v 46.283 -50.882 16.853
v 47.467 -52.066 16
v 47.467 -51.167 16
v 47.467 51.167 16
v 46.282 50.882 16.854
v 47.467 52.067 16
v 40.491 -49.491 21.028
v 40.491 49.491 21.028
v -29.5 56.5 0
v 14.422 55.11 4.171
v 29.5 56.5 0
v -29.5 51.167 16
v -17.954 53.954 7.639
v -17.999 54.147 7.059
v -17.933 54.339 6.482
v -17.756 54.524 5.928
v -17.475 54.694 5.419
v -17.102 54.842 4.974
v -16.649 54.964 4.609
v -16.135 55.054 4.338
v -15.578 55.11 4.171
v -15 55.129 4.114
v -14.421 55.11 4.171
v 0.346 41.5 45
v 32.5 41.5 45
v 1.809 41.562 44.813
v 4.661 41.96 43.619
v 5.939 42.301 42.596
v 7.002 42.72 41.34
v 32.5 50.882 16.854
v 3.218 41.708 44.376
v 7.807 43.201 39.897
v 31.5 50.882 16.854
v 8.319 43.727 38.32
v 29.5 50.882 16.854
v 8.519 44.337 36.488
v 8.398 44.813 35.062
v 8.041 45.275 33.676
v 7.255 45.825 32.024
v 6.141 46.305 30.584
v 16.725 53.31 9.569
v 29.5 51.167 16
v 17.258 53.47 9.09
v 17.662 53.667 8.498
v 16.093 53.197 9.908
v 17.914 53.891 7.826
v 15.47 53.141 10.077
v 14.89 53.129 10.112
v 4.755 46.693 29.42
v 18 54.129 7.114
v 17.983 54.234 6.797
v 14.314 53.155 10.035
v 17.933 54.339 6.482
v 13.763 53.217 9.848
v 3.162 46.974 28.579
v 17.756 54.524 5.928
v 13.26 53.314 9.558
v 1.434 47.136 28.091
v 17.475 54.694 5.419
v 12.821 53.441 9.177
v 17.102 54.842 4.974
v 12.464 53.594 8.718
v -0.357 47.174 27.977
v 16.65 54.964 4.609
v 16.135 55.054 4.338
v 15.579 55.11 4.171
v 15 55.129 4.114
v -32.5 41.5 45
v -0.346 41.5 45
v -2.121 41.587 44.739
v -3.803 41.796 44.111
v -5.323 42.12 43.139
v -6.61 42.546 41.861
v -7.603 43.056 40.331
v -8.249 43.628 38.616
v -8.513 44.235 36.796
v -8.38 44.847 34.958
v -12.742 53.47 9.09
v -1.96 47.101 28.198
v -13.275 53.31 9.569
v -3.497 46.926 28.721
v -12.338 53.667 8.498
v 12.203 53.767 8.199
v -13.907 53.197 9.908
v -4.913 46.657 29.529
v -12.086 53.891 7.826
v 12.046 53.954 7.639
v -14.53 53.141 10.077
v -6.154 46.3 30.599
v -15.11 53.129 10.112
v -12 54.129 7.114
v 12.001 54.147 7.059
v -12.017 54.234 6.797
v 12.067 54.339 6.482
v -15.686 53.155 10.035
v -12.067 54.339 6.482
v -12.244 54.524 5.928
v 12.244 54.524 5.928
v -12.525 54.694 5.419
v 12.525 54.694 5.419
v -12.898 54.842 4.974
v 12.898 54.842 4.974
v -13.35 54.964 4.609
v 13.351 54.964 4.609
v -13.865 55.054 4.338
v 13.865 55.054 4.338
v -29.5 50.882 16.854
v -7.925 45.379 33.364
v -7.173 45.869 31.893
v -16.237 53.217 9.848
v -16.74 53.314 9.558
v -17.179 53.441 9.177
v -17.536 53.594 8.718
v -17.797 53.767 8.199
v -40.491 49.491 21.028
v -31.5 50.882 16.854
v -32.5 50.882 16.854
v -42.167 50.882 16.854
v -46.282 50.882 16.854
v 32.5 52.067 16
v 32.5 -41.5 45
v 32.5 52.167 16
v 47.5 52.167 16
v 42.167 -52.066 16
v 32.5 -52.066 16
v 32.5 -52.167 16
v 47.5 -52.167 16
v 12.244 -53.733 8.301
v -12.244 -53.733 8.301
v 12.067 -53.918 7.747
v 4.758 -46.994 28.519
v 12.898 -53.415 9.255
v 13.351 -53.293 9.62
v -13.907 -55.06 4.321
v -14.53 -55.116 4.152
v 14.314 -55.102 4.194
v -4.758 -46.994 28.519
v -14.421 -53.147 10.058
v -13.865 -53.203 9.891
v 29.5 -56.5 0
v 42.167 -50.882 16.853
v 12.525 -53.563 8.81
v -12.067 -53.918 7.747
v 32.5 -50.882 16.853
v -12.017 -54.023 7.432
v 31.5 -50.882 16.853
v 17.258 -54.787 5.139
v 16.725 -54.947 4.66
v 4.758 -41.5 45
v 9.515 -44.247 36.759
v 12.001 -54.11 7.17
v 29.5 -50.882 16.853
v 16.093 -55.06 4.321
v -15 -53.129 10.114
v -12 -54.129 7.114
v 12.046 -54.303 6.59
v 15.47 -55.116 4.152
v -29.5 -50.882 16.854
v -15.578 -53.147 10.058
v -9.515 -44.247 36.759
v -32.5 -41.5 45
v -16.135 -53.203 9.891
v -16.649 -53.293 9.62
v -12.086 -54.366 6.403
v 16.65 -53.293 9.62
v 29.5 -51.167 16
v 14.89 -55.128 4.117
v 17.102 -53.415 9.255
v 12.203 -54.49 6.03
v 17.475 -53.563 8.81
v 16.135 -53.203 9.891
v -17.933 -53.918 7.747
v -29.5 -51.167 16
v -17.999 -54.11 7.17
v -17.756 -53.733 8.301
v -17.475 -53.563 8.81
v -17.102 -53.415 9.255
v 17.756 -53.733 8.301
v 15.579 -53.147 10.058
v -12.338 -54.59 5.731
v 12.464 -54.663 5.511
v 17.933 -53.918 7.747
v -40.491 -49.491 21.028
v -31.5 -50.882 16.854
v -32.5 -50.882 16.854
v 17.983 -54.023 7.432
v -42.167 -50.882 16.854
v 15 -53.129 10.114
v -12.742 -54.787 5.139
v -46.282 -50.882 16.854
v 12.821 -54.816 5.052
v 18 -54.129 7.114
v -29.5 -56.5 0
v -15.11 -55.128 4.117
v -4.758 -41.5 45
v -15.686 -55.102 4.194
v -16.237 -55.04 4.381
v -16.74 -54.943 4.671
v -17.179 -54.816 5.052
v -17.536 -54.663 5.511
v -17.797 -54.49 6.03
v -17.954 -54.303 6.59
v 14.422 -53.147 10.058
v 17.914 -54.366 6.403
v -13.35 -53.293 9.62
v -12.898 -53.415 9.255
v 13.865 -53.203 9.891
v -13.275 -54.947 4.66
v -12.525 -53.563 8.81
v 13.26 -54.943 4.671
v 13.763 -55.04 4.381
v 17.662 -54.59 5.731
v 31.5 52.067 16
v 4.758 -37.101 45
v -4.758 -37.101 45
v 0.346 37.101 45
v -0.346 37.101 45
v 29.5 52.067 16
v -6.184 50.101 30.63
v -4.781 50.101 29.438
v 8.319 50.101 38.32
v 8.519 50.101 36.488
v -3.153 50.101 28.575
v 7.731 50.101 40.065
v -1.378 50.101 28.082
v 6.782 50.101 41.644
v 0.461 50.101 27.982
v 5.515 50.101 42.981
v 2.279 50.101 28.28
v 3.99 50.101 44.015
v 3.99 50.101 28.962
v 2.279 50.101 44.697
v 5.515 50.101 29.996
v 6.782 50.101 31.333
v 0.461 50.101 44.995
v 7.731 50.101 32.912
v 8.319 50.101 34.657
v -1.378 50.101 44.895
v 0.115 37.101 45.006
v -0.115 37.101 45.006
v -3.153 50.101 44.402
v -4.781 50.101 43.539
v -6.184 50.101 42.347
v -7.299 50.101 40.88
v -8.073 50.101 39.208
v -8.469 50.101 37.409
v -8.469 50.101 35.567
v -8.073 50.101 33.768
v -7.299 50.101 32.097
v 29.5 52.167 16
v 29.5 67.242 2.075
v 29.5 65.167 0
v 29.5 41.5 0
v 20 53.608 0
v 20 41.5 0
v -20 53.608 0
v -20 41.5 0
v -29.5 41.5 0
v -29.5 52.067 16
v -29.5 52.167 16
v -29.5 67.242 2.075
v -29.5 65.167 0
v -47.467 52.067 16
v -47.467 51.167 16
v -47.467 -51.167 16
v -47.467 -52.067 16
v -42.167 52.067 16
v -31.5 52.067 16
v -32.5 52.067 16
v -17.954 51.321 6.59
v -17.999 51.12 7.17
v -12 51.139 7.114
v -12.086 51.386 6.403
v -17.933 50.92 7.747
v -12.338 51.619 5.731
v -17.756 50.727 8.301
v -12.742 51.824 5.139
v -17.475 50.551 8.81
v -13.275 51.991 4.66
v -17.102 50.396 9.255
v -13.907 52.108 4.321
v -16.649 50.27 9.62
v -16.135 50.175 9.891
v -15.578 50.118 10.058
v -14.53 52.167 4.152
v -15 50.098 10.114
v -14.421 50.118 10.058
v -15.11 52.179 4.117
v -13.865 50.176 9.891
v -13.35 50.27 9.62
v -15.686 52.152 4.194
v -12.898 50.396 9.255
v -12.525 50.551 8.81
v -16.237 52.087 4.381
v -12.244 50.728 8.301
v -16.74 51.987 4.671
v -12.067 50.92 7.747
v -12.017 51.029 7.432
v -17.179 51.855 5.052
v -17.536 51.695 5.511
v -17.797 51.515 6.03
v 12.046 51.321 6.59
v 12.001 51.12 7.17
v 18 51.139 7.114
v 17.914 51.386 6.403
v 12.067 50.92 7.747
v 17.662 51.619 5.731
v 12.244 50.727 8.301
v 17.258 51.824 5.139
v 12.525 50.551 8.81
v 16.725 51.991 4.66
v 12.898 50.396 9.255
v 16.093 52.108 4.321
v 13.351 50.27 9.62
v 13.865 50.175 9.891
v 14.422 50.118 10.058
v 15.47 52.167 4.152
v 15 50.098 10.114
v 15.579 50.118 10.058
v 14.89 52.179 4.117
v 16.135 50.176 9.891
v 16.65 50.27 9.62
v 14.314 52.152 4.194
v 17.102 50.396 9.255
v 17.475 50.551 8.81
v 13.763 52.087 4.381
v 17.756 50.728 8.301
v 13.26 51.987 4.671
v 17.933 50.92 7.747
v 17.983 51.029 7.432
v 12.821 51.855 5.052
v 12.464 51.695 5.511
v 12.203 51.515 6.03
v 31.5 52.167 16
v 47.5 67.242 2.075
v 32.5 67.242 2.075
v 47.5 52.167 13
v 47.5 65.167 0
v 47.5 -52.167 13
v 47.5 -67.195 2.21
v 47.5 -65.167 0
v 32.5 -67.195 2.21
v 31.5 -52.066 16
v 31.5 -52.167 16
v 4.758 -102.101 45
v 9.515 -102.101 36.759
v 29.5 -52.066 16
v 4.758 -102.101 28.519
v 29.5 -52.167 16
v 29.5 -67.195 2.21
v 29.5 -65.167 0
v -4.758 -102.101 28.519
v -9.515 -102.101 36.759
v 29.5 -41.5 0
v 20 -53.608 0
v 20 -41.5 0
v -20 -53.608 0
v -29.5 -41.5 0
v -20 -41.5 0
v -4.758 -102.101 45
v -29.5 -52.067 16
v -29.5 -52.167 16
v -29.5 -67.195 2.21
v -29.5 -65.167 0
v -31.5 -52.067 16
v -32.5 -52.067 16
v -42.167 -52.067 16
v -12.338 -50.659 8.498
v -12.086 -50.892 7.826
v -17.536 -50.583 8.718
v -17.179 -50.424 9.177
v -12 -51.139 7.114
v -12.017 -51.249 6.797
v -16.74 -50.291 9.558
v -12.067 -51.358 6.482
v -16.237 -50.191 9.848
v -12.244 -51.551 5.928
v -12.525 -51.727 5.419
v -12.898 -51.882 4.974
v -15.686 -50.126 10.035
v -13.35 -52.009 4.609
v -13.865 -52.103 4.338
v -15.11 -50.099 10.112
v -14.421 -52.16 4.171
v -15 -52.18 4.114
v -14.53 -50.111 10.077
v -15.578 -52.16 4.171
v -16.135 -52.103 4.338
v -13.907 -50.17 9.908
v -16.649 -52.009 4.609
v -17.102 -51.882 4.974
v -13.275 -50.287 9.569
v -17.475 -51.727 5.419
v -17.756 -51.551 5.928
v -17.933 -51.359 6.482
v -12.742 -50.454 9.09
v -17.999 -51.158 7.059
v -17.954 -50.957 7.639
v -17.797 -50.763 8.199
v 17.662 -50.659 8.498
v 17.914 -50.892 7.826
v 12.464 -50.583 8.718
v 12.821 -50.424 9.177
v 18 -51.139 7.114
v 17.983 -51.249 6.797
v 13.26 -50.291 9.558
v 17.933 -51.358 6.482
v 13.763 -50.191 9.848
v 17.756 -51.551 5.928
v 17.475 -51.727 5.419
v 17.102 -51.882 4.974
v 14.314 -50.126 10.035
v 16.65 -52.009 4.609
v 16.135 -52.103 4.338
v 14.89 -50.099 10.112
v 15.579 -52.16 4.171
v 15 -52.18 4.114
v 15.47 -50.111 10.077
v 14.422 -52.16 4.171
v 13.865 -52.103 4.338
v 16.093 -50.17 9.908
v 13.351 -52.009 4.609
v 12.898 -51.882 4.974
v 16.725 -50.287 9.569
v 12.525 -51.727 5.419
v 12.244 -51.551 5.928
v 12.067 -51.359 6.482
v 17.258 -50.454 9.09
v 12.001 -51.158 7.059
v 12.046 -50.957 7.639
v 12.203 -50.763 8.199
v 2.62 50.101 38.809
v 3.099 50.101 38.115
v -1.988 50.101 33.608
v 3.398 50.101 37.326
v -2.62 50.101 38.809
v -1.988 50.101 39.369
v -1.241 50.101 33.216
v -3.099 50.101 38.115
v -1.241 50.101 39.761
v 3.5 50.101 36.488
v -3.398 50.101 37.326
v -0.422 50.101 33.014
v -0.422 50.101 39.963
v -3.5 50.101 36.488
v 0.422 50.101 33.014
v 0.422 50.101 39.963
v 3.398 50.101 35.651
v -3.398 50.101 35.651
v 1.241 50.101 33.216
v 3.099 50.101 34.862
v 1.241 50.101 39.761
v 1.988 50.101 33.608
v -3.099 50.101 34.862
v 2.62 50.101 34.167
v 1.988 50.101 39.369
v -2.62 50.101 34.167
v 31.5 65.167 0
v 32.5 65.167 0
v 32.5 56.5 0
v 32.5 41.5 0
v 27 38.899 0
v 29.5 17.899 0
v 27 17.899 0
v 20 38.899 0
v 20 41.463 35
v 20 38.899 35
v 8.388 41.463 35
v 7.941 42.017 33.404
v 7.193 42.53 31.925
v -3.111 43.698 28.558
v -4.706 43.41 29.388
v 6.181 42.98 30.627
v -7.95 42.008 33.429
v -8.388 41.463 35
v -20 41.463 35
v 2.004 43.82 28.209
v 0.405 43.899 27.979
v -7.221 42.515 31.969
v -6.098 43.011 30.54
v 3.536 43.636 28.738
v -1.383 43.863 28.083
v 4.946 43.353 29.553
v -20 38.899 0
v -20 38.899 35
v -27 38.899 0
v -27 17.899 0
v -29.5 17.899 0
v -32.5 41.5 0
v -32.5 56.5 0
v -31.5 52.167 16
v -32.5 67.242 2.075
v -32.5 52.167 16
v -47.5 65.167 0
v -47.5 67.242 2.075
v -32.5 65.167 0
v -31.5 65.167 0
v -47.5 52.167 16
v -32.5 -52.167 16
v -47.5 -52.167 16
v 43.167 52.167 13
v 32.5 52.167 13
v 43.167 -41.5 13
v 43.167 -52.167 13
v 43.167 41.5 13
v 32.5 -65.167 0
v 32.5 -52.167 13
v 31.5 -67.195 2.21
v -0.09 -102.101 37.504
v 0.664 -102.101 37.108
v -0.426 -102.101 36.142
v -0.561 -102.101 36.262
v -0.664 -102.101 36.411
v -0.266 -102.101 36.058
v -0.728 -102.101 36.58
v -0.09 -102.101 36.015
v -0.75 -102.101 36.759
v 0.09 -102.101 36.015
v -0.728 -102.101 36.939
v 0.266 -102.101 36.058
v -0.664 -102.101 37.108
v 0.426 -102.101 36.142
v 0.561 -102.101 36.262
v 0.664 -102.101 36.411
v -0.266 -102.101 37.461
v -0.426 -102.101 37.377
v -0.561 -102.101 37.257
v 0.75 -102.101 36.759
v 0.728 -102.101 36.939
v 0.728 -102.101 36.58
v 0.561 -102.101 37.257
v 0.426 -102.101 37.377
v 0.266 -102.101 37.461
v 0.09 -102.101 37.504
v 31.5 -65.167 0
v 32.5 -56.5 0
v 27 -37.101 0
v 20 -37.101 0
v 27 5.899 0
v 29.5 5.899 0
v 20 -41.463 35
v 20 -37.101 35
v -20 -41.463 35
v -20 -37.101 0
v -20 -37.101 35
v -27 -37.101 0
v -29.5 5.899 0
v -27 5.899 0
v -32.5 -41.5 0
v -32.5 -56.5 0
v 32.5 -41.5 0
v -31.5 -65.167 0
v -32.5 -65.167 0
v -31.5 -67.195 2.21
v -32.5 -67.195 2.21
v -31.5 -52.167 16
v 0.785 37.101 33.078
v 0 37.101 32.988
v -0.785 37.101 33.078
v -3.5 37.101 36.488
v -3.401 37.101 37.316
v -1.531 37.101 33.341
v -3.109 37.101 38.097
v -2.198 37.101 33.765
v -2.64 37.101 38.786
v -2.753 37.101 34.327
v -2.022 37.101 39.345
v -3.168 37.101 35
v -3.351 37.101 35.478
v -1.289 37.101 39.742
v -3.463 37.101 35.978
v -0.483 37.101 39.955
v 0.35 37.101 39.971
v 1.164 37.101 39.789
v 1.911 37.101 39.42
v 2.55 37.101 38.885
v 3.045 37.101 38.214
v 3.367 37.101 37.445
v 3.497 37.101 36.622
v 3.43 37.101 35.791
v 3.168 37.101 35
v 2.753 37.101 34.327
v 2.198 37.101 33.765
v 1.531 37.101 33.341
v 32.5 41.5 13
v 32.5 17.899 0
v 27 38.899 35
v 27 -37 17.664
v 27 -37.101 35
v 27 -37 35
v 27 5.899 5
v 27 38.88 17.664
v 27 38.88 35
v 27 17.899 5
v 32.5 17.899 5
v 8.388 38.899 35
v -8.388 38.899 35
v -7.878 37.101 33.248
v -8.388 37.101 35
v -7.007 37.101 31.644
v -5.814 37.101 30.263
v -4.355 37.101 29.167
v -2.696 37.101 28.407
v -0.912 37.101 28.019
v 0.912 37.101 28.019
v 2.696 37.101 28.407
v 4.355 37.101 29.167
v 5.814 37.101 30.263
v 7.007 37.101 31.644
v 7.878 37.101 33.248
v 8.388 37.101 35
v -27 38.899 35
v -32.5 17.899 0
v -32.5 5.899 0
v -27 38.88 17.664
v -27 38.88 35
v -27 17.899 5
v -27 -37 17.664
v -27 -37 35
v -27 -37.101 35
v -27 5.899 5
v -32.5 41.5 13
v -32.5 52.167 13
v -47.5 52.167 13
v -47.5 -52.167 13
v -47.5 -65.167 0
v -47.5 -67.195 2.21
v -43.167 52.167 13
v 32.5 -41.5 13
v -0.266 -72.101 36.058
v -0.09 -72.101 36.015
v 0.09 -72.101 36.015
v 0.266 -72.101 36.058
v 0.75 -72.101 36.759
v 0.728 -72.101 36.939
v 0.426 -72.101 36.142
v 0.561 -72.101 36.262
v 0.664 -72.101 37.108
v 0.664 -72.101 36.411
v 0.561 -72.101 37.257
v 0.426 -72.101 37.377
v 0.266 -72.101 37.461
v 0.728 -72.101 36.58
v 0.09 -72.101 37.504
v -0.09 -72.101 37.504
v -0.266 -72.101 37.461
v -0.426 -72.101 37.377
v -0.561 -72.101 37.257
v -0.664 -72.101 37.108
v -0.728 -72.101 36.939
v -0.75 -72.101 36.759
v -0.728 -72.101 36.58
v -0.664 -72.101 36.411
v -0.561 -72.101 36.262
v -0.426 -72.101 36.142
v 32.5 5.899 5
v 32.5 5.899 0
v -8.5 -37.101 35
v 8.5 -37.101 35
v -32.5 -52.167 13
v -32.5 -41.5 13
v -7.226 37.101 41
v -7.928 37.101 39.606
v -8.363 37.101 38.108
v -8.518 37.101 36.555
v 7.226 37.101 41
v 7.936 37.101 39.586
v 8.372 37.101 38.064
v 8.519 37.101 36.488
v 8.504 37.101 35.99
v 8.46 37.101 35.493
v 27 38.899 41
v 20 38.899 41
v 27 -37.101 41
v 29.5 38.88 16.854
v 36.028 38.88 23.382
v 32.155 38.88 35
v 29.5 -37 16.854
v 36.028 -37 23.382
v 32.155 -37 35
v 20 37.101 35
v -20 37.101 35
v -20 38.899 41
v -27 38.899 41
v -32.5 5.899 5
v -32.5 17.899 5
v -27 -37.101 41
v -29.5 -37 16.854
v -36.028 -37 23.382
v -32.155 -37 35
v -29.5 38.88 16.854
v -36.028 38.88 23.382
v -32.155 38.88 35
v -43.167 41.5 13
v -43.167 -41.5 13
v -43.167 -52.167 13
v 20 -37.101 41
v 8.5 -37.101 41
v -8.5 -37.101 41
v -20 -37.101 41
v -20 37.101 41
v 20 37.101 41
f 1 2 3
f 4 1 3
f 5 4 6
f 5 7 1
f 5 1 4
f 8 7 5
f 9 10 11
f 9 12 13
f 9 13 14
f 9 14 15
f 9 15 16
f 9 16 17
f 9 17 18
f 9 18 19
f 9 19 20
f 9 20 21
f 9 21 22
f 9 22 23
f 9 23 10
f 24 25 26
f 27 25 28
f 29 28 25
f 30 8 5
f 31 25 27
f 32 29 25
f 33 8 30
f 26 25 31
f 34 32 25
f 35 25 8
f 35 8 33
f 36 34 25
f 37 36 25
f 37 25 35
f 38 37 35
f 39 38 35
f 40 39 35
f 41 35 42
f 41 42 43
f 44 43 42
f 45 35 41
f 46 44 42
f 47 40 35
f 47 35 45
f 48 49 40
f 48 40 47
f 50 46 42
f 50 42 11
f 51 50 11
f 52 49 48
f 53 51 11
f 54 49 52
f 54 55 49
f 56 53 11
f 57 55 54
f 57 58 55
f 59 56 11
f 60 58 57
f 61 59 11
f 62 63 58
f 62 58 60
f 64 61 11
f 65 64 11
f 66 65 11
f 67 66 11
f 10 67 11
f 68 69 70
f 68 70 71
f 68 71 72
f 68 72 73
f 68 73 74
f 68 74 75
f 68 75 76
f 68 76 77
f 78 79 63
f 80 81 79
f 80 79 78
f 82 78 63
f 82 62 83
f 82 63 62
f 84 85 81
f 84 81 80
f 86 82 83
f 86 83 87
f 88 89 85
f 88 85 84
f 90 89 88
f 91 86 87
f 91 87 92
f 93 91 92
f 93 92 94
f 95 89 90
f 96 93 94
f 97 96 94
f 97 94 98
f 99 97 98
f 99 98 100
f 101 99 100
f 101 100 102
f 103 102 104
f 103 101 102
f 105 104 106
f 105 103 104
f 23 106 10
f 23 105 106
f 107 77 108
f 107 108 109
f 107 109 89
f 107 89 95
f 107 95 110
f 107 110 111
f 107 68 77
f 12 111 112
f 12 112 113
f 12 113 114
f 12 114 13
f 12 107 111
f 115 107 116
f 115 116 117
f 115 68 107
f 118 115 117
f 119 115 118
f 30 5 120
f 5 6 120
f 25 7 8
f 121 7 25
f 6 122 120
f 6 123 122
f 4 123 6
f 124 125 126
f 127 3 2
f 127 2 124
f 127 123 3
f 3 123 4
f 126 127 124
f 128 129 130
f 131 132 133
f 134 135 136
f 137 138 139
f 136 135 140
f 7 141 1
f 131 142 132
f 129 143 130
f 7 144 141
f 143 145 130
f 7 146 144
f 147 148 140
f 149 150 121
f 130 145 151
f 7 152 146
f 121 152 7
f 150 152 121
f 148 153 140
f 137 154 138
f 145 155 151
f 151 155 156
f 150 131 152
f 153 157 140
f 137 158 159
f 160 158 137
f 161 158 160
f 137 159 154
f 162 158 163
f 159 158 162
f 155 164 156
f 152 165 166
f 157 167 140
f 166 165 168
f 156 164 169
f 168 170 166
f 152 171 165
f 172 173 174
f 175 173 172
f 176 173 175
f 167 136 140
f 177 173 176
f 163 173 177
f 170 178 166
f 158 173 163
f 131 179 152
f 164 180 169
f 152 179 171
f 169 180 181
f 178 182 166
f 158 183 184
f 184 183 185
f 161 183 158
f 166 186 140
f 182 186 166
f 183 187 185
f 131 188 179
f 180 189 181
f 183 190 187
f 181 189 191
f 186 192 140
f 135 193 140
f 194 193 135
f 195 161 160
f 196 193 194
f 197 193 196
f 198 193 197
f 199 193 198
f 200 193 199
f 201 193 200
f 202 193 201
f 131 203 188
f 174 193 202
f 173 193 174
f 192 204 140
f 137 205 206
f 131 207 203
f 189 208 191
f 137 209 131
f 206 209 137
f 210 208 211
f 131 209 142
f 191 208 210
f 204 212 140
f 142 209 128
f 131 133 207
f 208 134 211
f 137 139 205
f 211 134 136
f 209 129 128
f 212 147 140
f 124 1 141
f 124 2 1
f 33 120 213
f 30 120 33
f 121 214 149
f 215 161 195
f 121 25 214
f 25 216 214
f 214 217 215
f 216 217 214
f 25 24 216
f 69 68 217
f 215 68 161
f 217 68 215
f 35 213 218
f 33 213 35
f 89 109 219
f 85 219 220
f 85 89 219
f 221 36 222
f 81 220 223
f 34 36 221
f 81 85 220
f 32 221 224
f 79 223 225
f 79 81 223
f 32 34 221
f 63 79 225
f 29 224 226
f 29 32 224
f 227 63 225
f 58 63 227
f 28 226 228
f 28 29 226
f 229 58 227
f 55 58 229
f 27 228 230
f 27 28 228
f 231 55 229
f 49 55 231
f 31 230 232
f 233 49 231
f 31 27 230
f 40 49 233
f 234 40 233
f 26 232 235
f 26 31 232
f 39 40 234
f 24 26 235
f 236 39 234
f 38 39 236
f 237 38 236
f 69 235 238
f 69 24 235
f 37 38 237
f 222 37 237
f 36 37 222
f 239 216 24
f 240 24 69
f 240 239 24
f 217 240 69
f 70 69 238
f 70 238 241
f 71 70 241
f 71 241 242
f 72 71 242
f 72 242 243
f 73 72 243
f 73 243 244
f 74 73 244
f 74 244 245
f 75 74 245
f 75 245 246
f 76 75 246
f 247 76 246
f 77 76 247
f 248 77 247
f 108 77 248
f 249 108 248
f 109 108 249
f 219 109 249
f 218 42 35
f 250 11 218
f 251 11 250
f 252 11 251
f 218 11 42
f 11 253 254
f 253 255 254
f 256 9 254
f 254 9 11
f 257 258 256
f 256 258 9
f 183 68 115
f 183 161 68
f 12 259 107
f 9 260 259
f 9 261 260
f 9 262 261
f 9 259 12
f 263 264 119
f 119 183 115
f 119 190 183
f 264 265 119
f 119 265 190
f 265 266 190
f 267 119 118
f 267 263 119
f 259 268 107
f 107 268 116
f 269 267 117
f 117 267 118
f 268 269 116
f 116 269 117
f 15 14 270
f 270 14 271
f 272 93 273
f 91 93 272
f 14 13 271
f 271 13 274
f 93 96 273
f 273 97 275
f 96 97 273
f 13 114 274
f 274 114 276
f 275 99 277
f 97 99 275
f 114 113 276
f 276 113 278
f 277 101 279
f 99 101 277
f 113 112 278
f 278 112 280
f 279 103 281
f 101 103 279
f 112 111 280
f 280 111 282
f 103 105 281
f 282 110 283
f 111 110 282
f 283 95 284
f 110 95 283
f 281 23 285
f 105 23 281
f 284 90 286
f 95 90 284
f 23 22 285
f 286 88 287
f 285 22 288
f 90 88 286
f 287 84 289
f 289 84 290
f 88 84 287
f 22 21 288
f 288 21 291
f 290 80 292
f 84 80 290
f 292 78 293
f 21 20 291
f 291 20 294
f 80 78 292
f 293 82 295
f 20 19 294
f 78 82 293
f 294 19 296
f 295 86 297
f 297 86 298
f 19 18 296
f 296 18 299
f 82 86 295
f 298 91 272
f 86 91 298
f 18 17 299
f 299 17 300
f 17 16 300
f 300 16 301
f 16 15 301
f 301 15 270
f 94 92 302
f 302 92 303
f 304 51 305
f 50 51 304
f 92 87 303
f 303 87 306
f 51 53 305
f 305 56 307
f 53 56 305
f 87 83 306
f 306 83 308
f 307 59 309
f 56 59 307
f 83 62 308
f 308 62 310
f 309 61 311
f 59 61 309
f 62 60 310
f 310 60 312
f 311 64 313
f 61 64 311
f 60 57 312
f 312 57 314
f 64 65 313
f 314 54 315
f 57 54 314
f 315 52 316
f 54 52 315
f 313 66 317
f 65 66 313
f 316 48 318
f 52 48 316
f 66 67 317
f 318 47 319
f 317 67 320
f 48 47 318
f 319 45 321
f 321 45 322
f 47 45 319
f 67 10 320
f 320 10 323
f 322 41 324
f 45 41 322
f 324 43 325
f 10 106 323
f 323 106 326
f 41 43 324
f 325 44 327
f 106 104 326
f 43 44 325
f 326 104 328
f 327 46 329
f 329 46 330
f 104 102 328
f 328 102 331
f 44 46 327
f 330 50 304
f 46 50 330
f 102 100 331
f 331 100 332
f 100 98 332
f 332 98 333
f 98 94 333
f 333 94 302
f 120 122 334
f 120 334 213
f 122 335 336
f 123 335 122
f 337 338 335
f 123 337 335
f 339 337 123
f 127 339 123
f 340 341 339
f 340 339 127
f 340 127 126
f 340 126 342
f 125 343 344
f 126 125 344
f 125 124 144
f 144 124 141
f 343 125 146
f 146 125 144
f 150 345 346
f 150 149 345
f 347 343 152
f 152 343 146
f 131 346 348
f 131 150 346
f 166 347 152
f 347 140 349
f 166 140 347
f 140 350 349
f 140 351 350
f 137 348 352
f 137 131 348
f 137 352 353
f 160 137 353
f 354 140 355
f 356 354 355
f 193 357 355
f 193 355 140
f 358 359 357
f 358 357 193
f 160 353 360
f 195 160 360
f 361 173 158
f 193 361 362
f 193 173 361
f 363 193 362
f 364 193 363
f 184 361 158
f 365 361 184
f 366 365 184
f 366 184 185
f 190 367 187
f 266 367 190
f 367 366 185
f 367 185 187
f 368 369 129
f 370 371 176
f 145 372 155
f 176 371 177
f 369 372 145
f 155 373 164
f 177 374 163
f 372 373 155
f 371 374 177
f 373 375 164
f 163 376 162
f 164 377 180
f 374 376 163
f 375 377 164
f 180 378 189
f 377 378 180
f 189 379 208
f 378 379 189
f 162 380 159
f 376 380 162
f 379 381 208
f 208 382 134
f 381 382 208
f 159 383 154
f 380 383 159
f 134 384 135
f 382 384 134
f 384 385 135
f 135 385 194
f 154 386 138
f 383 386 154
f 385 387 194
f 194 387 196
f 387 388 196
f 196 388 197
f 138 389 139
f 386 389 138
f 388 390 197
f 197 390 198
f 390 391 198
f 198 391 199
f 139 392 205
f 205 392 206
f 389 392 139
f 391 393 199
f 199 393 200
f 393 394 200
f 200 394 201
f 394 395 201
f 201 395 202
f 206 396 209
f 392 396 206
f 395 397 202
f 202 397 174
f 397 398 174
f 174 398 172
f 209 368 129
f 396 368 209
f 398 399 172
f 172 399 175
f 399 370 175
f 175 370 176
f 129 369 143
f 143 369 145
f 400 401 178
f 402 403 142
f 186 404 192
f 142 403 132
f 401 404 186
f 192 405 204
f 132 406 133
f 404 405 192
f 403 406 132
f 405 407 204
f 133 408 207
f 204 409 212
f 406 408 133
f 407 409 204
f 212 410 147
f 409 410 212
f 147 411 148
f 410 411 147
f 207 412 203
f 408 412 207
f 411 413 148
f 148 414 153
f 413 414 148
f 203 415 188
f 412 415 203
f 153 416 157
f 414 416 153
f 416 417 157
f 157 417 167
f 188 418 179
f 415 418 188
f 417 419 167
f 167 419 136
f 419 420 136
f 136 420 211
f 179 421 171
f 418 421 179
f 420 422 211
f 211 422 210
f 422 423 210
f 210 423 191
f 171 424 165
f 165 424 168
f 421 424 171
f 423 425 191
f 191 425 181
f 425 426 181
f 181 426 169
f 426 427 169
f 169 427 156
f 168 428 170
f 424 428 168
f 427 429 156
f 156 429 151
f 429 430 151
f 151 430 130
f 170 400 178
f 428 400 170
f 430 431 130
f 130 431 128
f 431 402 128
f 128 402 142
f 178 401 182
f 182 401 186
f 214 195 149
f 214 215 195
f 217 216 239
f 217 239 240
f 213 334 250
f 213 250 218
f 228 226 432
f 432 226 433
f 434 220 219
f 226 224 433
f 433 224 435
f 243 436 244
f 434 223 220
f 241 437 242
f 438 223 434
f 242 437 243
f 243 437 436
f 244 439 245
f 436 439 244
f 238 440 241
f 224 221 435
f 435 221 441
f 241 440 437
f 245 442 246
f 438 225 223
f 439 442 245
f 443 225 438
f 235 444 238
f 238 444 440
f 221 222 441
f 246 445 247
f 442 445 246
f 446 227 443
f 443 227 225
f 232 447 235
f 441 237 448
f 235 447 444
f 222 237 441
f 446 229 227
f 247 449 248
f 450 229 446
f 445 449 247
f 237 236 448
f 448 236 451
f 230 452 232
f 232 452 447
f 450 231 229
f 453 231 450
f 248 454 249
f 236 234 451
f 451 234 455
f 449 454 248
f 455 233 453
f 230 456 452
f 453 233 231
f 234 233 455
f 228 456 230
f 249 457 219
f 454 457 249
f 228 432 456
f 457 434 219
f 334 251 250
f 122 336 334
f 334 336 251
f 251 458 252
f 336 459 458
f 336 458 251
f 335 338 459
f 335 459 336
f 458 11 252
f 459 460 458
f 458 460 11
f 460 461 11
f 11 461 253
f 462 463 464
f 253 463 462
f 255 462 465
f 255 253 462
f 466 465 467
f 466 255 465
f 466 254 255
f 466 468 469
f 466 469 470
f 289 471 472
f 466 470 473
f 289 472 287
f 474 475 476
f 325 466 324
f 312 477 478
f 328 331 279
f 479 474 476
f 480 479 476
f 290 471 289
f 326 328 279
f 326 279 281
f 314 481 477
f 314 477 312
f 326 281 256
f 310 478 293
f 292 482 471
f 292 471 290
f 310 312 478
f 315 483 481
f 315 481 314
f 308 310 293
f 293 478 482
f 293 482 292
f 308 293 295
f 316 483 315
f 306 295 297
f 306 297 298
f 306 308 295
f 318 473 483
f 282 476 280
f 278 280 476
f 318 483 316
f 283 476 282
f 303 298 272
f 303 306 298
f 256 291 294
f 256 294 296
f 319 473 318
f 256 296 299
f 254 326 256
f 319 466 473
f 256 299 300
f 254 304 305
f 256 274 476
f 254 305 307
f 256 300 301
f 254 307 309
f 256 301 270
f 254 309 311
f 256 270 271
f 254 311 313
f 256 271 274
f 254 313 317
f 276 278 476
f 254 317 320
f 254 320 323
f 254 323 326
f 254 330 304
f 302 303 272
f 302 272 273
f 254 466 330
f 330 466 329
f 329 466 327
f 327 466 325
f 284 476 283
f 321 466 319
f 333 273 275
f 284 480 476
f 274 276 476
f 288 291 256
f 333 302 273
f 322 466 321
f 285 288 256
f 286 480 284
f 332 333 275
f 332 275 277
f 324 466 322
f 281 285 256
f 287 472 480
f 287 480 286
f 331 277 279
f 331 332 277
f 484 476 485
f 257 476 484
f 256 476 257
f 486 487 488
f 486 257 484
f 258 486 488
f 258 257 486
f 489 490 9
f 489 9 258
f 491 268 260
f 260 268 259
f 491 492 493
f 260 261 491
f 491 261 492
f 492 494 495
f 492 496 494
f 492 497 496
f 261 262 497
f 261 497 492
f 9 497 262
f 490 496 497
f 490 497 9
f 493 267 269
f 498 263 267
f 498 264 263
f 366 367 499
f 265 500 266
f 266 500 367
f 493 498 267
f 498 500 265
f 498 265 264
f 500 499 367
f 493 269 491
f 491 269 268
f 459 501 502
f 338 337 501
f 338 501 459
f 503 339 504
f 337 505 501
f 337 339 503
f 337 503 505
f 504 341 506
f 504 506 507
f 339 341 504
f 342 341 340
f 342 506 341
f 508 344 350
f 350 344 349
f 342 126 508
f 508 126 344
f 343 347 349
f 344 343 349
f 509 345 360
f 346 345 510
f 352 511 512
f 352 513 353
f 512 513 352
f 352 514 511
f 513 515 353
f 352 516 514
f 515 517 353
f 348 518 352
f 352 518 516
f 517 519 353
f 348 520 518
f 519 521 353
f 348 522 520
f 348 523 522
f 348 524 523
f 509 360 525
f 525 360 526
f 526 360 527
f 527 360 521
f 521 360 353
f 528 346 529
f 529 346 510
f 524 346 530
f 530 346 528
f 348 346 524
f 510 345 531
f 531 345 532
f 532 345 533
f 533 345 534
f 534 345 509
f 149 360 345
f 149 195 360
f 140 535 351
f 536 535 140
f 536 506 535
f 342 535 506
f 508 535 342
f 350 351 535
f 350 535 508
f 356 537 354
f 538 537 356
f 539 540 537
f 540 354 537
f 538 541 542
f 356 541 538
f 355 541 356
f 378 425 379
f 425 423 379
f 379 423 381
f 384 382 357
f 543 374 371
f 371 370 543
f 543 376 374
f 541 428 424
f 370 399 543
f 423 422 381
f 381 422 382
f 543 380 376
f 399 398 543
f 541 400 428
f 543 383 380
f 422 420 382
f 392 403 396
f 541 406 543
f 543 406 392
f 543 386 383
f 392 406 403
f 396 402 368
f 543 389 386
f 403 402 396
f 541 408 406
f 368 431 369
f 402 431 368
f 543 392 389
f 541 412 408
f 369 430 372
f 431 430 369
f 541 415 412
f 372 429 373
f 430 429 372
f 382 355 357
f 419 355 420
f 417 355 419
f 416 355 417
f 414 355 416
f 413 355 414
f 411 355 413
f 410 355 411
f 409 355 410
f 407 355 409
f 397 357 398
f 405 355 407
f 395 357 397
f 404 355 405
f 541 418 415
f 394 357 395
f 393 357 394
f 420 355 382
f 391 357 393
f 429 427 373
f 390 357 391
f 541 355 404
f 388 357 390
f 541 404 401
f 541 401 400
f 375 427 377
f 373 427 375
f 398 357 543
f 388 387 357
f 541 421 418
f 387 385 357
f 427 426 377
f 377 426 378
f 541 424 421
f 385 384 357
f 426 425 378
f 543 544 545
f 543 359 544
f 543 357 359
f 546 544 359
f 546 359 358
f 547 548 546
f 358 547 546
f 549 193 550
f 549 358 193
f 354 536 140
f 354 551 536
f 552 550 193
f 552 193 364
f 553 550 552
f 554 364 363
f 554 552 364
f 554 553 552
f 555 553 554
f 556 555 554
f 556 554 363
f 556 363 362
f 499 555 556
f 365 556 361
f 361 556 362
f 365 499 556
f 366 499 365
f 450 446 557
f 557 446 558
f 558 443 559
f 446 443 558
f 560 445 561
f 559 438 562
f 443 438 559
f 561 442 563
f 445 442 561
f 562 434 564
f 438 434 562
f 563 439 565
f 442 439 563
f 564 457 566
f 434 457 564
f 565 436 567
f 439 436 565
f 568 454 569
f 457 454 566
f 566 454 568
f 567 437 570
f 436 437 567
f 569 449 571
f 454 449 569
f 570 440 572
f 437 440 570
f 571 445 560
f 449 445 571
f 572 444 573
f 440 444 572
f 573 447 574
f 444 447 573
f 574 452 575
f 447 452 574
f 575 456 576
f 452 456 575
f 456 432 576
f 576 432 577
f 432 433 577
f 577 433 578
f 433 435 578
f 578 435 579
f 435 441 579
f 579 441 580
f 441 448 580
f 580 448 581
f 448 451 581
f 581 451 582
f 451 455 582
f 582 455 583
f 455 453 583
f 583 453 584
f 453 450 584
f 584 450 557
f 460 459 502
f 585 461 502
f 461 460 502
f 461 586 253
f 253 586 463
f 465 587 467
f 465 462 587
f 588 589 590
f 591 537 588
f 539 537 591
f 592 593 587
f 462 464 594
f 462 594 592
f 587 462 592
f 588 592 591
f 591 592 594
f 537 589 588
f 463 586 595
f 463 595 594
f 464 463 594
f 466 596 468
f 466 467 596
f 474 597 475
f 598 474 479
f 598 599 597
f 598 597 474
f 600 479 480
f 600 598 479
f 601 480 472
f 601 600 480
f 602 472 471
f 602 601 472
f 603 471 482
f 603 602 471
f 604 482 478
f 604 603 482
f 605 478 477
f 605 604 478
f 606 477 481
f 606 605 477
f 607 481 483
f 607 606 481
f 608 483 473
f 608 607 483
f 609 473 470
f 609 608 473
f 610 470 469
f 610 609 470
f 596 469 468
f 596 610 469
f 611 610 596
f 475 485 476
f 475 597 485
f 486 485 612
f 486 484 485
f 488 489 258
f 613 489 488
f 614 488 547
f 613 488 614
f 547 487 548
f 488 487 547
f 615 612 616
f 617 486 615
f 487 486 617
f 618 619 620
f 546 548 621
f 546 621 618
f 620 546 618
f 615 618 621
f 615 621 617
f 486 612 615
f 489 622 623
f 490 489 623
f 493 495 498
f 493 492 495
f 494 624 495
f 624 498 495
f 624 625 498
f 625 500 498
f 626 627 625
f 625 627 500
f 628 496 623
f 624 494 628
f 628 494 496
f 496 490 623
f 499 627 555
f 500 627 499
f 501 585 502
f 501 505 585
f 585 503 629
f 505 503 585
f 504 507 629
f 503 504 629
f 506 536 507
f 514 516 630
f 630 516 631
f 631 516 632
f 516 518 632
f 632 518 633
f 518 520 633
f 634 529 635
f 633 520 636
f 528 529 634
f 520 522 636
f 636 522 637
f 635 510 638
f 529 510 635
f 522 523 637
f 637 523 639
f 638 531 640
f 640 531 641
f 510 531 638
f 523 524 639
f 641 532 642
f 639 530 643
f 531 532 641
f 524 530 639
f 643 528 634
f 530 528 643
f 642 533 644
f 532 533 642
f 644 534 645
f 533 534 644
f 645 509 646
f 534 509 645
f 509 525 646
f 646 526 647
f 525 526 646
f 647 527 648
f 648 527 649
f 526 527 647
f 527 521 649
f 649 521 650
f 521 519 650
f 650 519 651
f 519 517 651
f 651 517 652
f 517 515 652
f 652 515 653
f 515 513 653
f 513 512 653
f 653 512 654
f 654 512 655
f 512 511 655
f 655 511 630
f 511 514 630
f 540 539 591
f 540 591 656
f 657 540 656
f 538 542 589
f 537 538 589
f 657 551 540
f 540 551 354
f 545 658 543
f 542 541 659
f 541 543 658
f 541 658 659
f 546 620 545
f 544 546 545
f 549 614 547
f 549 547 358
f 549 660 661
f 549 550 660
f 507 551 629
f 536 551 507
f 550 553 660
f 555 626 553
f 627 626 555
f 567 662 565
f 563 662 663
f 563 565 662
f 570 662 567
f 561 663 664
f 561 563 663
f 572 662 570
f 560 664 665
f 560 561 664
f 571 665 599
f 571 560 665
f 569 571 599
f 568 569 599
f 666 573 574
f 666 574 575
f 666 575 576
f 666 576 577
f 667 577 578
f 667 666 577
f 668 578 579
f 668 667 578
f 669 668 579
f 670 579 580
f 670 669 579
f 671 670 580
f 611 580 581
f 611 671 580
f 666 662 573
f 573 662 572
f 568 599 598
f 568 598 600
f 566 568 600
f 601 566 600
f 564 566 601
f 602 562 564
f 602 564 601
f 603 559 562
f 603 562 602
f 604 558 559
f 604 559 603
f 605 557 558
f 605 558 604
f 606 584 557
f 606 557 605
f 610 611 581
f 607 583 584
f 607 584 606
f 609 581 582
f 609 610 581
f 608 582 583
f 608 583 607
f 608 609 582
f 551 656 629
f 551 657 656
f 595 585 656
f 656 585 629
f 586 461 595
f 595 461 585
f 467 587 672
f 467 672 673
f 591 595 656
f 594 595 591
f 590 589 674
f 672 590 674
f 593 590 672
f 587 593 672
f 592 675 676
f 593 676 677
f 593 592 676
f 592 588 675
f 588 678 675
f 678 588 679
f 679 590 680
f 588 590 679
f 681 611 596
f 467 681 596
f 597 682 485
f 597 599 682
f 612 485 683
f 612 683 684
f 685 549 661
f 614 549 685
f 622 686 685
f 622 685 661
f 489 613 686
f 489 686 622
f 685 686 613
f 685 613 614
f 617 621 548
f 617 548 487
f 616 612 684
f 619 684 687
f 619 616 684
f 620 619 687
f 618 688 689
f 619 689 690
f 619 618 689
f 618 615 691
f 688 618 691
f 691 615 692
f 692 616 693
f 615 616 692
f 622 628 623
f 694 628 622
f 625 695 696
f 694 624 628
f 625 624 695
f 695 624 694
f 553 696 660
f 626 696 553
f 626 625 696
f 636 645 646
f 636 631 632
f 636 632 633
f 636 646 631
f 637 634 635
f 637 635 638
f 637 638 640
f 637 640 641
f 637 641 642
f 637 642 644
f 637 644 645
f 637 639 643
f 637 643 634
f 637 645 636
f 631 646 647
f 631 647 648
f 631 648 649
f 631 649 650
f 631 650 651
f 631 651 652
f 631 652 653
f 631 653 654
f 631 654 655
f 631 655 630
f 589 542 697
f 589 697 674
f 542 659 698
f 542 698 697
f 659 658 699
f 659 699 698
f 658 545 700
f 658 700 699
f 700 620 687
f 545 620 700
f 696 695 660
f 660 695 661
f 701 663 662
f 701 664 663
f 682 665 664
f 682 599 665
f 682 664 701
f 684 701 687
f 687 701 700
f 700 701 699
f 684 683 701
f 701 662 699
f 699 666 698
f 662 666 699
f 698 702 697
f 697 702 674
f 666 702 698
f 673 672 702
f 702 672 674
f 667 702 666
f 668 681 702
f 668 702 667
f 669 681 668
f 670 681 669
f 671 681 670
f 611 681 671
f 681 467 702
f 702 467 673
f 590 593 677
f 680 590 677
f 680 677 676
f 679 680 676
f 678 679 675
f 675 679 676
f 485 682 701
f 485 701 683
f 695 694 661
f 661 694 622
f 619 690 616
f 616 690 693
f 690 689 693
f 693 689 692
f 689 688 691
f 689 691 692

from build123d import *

# Parameters (mm, degrees)
SKETCH_W             = 65
SKETCH_H             = 83
PAD_DEPTH            = 45
SKETCH001_W          = 83
SKETCH001_H          = 32
PAD001_DEPTH         = 15
PAD002_DEPTH         = 15
POCKET_DEPTH         = 403.6691065481
POCKET001_DEPTH      = 500
POCKET001_DEPTH_BACK = 100
PAD003_DEPTH         = 16
SKETCH007_W          = 3
SKETCH007_H          = 135.5960614908
PAD004_DEPTH         = 16
POCKET002_DEPTH      = 414.7315387876
POCKET003_DEPTH      = 5
SKETCH008_W          = 54
SKETCH008_H          = 76
POCKET004_DEPTH      = 35
PAD005_DEPTH         = 65
CHAMFER_SIZE         = 5.3
CHAMFER001_SIZE      = 5.3
CHAMFER002_SIZE      = 0.8999
CHAMFER003_SIZE      = 0.899
CHAMFER004_SIZE      = 0.8999
CHAMFER005_SIZE      = 0.8999
POCKET005_DEPTH      = 80.0010001
POCKET006_DEPTH      = 80.0010001
POCKET007_DEPTH      = 10000
POCKET007_DEPTH_BACK = 100
POCKET008_DEPTH      = 95.001
SKETCH012_W          = 5.5
SKETCH012_H          = 12
POCKET009_DEPTH      = 5
POCKET010_DEPTH      = 20
POCKET010_DEPTH_BACK = 20
POCKET011_DEPTH      = 6
SKETCH014_R          = 8.518625
PAD006_DEPTH         = 13
SKETCH015_R          = 3.5
POCKET012_DEPTH      = 15
SKETCH016_R          = 0.75
POCKET013_DEPTH      = 40
SKETCH018_W          = 5.5
SKETCH018_H          = 12
POCKET014_DEPTH      = 5
POCKET014_FACE131_W  = 12
POCKET014_FACE131_H  = 5.5
PAD007_DEPTH         = 5
POCKET015_DEPTH      = 38.88
POCKET015_DEPTH_BACK = 37
SKETCH020_R          = 3
POCKET016_DEPTH      = 173.1015589479
SKETCH021_R          = 0.75
POCKET017_DEPTH      = 30


with BuildPart() as part:
    # Sketch → Pad (new body)
    with BuildSketch(Plane.XY):
        Rectangle(SKETCH_W, SKETCH_H)
    extrude(amount=PAD_DEPTH)

    # Sketch001 (on Face4 of Pad) → Pad001 (join)
    with BuildSketch(Plane(origin=(-32.5, 0, 0), x_dir=(0, -1, 0), z_dir=(-1, 0, 0))):
        with Locations((0, 29)):
            Rectangle(SKETCH001_W, SKETCH001_H)
    pad001 = extrude(amount=PAD001_DEPTH)

    # Mirrored: Pad001 across YZ
    add(pad001.mirror(Plane.YZ))

    # Sketch002 (on Face4 of Mirrored) → Pad002 (join)
    with BuildSketch(Plane.XZ.offset(41.5)):
        Polygon((-47.5, 45), (47.5, 45), (47.5, 13), (32.5, 13), (32.5, 0), (-32.5, 0), (-32.5, 13), (-47.5, 13), align=None)
    pad002 = extrude(amount=PAD002_DEPTH)

    # Mirrored001: Pad002 across XZ
    add(pad002.mirror(Plane.XZ))

    # Sketch003 (on Face13 of Mirrored001) → Pocket (cut, through all)
    with BuildSketch(Plane(origin=(-47.5, 0, 0), x_dir=(0, -1, 0), z_dir=(-1, 0, 0))):
        Polygon((41.5, 45), (56.5, 0), (69.973511, 50.863071), align=None)
    pocket = extrude(amount=-POCKET_DEPTH, mode=Mode.SUBTRACT)

    # Mirrored002: Pocket across XZ
    add(pocket.mirror(Plane.XZ), mode=Mode.SUBTRACT)

    # Sketch004 → Pocket001 (cut, two sides)
    with BuildSketch(Plane.XZ) as pocket001_sk:
        Polygon((-32.5, 45), (-47.5, 0), (-68.972275, 31.059837), (-58.790833, 51.045628), align=None)
    pocket001 = extrude(amount=-POCKET001_DEPTH, mode=Mode.SUBTRACT) + extrude(pocket001_sk.sketch, amount=POCKET001_DEPTH_BACK, mode=Mode.SUBTRACT)

    # Mirrored003: Pocket001 across YZ
    add(pocket001.mirror(Plane.YZ), mode=Mode.SUBTRACT)

    # Sketch006 (on DatumPlane) → Pad003 (join)
    with BuildSketch(Plane(origin=(-47.5, 0, 4), x_dir=(0, -1, 0), z_dir=(-1, 0, 0))):
        Polygon((-68.401131891, -2.9951612268), (-52.1666666667, 12), (52.1666666667, 12), (67.1949295998, -1.7895363668), (65.1666666666, -4), (52.1666666667, 9), (-52.1666666667, 9), (-66.3655953138, -5.1989286472), align=None)
    pad003 = extrude(amount=-PAD003_DEPTH)

    # Sketch007 (on Face8 of Pad003) → Pad004 (join)
    with BuildSketch(Plane(origin=(0, 0, 0), x_dir=(1, 0, 0), z_dir=(0, 0, -1))):
        with Locations((-31, -0.6031011456)):
            Rectangle(SKETCH007_W, SKETCH007_H)
    pad004 = extrude(amount=-PAD004_DEPTH)

    # Pad004 Face41 → Pocket002 (cut, through all)
    with BuildSketch(Plane(origin=(-32.5, 62.9896434829, 11.0016129244), x_dir=(0, 1, 0), z_dir=(-1, 0, 0))):
        Polygon((5.4114884081, -4.9983870756), (5.4114884081, 9.9967741512), (-10.8229768162, -4.9983870756), align=None)
    pocket002 = extrude(amount=-POCKET002_DEPTH, mode=Mode.SUBTRACT)

    # Pocket002 Face27 → Pocket003 (cut)
    with BuildSketch(Plane(origin=(-32.5, -62.1855086221, 11.4034878777), x_dir=(0, 1, 0), z_dir=(-1, 0, 0))):
        Polygon((10.0188419554, -4.5965121223), (-5.0094209777, 9.1930242445), (-5.0094209777, -4.5965121223), align=None)
    pocket003 = extrude(amount=-POCKET003_DEPTH, mode=Mode.SUBTRACT)

    # Mirrored004: Pad003 across YZ
    add(pad003.mirror(Plane.YZ))

    # Mirrored005: Pad004 across YZ
    add(pad004.mirror(Plane.YZ))

    # Mirrored006: Pocket002 across YZ
    add(pocket002.mirror(Plane.YZ), mode=Mode.SUBTRACT)

    # Mirrored007: Pocket003 across YZ
    add(pocket003.mirror(Plane.YZ), mode=Mode.SUBTRACT)

    # Sketch008 (on Face8 of Mirrored007) → Pocket004 (cut)
    with BuildSketch(Plane(origin=(0, 0, 0), x_dir=(1, 0, 0), z_dir=(0, 0, -1))):
        with Locations((0, -0.8994410524)):
            Rectangle(SKETCH008_W, SKETCH008_H)
    extrude(amount=-POCKET004_DEPTH, mode=Mode.SUBTRACT)

    # Sketch009 (on Face24 of Pocket004) → Pad005 (join)
    with BuildSketch(Plane(origin=(0, -37.1005589476, 0), x_dir=(-1, 0, 0), z_dir=(0, 1, 0))):
        Polygon((-4.7576784019, 45), (-9.5153568039, 36.7594592818), (-4.7576784019, 28.5189185635), (4.7576784019, 28.5189185635), (9.5153568039, 36.7594592818), (4.7576784019, 45), align=None)
    extrude(amount=-PAD005_DEPTH)

    # Chamfer
    chamfer_edges = [part.edges().sort_by_distance(p)[0] for p in [
        (42.166667, 0, 16),
    ]]
    chamfer(chamfer_edges, length=CHAMFER_SIZE)

    # Chamfer001
    chamfer001_edges = [part.edges().sort_by_distance(p)[0] for p in [
        (-42.166667, 0, 16),
    ]]
    chamfer(chamfer001_edges, length=CHAMFER001_SIZE)

    # Chamfer002
    chamfer002_edges = [part.edges().sort_by_distance(p)[0] for p in [
        (-44.816667, -51.166667, 16),
        (-37.333333, -51.166667, 16),
        (-32, -51.166667, 16),
        (-30.5, -51.166667, 16),
    ]]
    chamfer(chamfer002_edges, length=CHAMFER002_SIZE)

    # Chamfer003
    chamfer003_edges = [part.edges().sort_by_distance(p)[0] for p in [
        (30.5, -51.166667, 16),
        (32, -51.166667, 16),
        (37.333333, -51.166667, 16),
        (44.816667, -51.166667, 16),
    ]]
    chamfer(chamfer003_edges, length=CHAMFER003_SIZE)

    # Chamfer004
    chamfer004_edges = [part.edges().sort_by_distance(p)[0] for p in [
        (-30.5, 51.166667, 16),
        (-32, 51.166667, 16),
        (-37.333333, 51.166667, 16),
        (-44.816667, 51.166667, 16),
    ]]
    chamfer(chamfer004_edges, length=CHAMFER004_SIZE)

    # Chamfer005
    chamfer005_edges = [part.edges().sort_by_distance(p)[0] for p in [
        (44.816667, 51.166667, 16),
        (37.333333, 51.166667, 16),
        (32, 51.166667, 16),
        (30.5, 51.166667, 16),
    ]]
    chamfer(chamfer005_edges, length=CHAMFER005_SIZE)

    # Chamfer005 Face72 → Pocket005 (cut, through all)
    with BuildSketch(Plane(origin=(-32.5, 68.0917547069, 0.3349462577), x_dir=(0, 1, 0), z_dir=(-1, 0, 0))):
        Polygon((0.3093771841, 0.3349462577), (-0.6187543683, 0.3349462577), (0.3093771841, -0.6698925155), align=None)
    extrude(amount=-POCKET005_DEPTH, mode=Mode.SUBTRACT)

    # Pocket005 Face105 → Pocket006 (cut, through all)
    with BuildSketch(Plane(origin=(-32.5, -66.5188419554, 0.7368212111), x_dir=(0, 1, 0), z_dir=(-1, 0, 0))):
        Polygon((-0.6760876444, -1.4736424221), (1.3521752888, 0.7368212111), (-0.6760876444, 0.7368212111), align=None)
    extrude(amount=-POCKET006_DEPTH, mode=Mode.SUBTRACT)

    # Pocket006 Face73 → Pocket007 (cut, two sides)
    with BuildSketch(Plane(origin=(-31.5, 66.3350874397, -0.3996428824), x_dir=(0, -1, 0), z_dir=(1, 0, 0))) as pocket007_sk:
        Polygon((1.168420773, -0.3996428824), (-0.0305078741, 0.7992857648), (-1.1379128989, -0.3996428824), align=None)
    extrude(amount=-POCKET007_DEPTH, mode=Mode.SUBTRACT)
    extrude(pocket007_sk.sketch, amount=POCKET007_DEPTH_BACK, mode=Mode.SUBTRACT)

    # Sketch011 (on Face39 of Pocket007) → Pocket008 (cut, through all)
    with BuildSketch(Plane.YZ.offset(47.5)):
        Polygon((65.1666666667, 0), (68.818161, 3.6514943333), (70.985268, 1.013342), (68.517616, -0.789946), align=None)
    extrude(amount=-POCKET008_DEPTH, mode=Mode.SUBTRACT)

    # Sketch012 (on Face30 of Pocket008) → Pocket009 (cut)
    with BuildSketch(Plane(origin=(0, 0, 0), x_dir=(1, 0, 0), z_dir=(0, 0, -1))):
        with Locations((-29.75, -11.8994410524)):
            Rectangle(SKETCH012_W, SKETCH012_H)
    extrude(amount=-POCKET009_DEPTH, mode=Mode.SUBTRACT)

    # Sketch013 → Pocket010 (cut, two sides)
    with BuildSketch(Plane.YZ) as pocket010_sk:
        Polygon((-37.1005589476, 35), (-41.46302, 35), (-53.607724, 0), (-37.1005589476, 0), align=None)
    pocket010 = extrude(amount=-POCKET010_DEPTH, mode=Mode.SUBTRACT) + extrude(pocket010_sk.sketch, amount=POCKET010_DEPTH_BACK, mode=Mode.SUBTRACT)

    # Mirrored008: Pocket010 across XZ
    add(pocket010.mirror(Plane.XZ), mode=Mode.SUBTRACT)

    # Mirrored008 Face101 → Pocket011 (cut)
    with BuildSketch(Plane(origin=(0, 0.2373498677, 35), x_dir=(0, -1, 0), z_dir=(0, 0, -1))):
        Polygon((37.3379088153, 27), (-38.6620911847, 27), (-38.6620911847, 20), (-36.86320908, 20), (-36.86320908, -20), (-38.6620911847, -20), (-38.6620911847, -27), (37.3379088153, -27), (37.3379088153, -20), (37.3379088153, -8.4995325139), (37.3379088153, 8.4995325139), (37.3379088153, 20), align=None)
    extrude(amount=-POCKET011_DEPTH, mode=Mode.SUBTRACT)

    # Sketch014 (on Face128 of Pocket011) → Pad006 (join)
    with BuildSketch(Plane.XZ.offset(-37.1005589476)):
        with Locations((0, 36.4884)):
            Circle(SKETCH014_R)
    extrude(amount=-PAD006_DEPTH)

    # Sketch015 (on Face43 of Pad006) → Pocket012 (cut)
    with BuildSketch(Plane(origin=(0, 50.1005589476, 0), x_dir=(-1, 0, 0), z_dir=(0, 1, 0))):
        with Locations((0, 36.4884)):
            Circle(SKETCH015_R)
    extrude(amount=-POCKET012_DEPTH, mode=Mode.SUBTRACT)

    # Sketch016 (on Face67 of Pocket012) → Pocket013 (cut)
    with BuildSketch(Plane.XZ.offset(102.1005589476)):
        with Locations((0, 57.966855919)):
            Circle(SKETCH016_R)
    extrude(amount=-POCKET013_DEPTH, mode=Mode.SUBTRACT)

    # Sketch018 → Pocket014 (cut)
    with BuildSketch(Plane(origin=(0, 0, 0), x_dir=(1, 0, 0), z_dir=(0, 0, -1))):
        with Locations((29.75, -11.8994410524)):
            Rectangle(SKETCH018_W, SKETCH018_H)
    extrude(amount=-POCKET014_DEPTH, mode=Mode.SUBTRACT)

    # Pocket014 Face131 → Pad007 (add)
    with BuildSketch(Plane(origin=(-29.75, 11.8994410524, 5), x_dir=(0, -1, 0), z_dir=(0, 0, -1))):
        Rectangle(POCKET014_FACE131_W, POCKET014_FACE131_H)
    extrude(amount=PAD007_DEPTH)

    # Sketch019 → Pocket015 (cut, two sides)
    with BuildSketch(Plane.XZ) as pocket015_sk:
        Polygon((-29.5, 16.8537200999), (-36.0278850321, 23.381605132), (-32.1550867428, 35), (-27, 35), (-23.389076, 18.833223), align=None)
    pocket015 = extrude(amount=-POCKET015_DEPTH, mode=Mode.SUBTRACT) + extrude(pocket015_sk.sketch, amount=POCKET015_DEPTH_BACK, mode=Mode.SUBTRACT)

    # Mirrored009: Pocket015 across YZ
    add(pocket015.mirror(Plane.YZ), mode=Mode.SUBTRACT)

    # Sketch020 (on DatumPlane) → Pocket016 (cut, through all)
    with BuildSketch(Plane(origin=(0, 71, 34), x_dir=(1, 0, 0), z_dir=(0, 1, 0))):
        with Locations((-15, 26.885509115)):
            Circle(SKETCH020_R)
        with Locations((15, 26.885509115)):
            Circle(SKETCH020_R)
    extrude(amount=-POCKET016_DEPTH, mode=Mode.SUBTRACT)

    # Sketch021 (on Face71 of Pocket016) → Pocket017 (cut)
    with BuildSketch(Plane.XZ.offset(102.1005589476)):
        with Locations((0, 36.7594592818)):
            Circle(SKETCH021_R)
    extrude(amount=-POCKET017_DEPTH, mode=Mode.SUBTRACT)


solid = part.part
